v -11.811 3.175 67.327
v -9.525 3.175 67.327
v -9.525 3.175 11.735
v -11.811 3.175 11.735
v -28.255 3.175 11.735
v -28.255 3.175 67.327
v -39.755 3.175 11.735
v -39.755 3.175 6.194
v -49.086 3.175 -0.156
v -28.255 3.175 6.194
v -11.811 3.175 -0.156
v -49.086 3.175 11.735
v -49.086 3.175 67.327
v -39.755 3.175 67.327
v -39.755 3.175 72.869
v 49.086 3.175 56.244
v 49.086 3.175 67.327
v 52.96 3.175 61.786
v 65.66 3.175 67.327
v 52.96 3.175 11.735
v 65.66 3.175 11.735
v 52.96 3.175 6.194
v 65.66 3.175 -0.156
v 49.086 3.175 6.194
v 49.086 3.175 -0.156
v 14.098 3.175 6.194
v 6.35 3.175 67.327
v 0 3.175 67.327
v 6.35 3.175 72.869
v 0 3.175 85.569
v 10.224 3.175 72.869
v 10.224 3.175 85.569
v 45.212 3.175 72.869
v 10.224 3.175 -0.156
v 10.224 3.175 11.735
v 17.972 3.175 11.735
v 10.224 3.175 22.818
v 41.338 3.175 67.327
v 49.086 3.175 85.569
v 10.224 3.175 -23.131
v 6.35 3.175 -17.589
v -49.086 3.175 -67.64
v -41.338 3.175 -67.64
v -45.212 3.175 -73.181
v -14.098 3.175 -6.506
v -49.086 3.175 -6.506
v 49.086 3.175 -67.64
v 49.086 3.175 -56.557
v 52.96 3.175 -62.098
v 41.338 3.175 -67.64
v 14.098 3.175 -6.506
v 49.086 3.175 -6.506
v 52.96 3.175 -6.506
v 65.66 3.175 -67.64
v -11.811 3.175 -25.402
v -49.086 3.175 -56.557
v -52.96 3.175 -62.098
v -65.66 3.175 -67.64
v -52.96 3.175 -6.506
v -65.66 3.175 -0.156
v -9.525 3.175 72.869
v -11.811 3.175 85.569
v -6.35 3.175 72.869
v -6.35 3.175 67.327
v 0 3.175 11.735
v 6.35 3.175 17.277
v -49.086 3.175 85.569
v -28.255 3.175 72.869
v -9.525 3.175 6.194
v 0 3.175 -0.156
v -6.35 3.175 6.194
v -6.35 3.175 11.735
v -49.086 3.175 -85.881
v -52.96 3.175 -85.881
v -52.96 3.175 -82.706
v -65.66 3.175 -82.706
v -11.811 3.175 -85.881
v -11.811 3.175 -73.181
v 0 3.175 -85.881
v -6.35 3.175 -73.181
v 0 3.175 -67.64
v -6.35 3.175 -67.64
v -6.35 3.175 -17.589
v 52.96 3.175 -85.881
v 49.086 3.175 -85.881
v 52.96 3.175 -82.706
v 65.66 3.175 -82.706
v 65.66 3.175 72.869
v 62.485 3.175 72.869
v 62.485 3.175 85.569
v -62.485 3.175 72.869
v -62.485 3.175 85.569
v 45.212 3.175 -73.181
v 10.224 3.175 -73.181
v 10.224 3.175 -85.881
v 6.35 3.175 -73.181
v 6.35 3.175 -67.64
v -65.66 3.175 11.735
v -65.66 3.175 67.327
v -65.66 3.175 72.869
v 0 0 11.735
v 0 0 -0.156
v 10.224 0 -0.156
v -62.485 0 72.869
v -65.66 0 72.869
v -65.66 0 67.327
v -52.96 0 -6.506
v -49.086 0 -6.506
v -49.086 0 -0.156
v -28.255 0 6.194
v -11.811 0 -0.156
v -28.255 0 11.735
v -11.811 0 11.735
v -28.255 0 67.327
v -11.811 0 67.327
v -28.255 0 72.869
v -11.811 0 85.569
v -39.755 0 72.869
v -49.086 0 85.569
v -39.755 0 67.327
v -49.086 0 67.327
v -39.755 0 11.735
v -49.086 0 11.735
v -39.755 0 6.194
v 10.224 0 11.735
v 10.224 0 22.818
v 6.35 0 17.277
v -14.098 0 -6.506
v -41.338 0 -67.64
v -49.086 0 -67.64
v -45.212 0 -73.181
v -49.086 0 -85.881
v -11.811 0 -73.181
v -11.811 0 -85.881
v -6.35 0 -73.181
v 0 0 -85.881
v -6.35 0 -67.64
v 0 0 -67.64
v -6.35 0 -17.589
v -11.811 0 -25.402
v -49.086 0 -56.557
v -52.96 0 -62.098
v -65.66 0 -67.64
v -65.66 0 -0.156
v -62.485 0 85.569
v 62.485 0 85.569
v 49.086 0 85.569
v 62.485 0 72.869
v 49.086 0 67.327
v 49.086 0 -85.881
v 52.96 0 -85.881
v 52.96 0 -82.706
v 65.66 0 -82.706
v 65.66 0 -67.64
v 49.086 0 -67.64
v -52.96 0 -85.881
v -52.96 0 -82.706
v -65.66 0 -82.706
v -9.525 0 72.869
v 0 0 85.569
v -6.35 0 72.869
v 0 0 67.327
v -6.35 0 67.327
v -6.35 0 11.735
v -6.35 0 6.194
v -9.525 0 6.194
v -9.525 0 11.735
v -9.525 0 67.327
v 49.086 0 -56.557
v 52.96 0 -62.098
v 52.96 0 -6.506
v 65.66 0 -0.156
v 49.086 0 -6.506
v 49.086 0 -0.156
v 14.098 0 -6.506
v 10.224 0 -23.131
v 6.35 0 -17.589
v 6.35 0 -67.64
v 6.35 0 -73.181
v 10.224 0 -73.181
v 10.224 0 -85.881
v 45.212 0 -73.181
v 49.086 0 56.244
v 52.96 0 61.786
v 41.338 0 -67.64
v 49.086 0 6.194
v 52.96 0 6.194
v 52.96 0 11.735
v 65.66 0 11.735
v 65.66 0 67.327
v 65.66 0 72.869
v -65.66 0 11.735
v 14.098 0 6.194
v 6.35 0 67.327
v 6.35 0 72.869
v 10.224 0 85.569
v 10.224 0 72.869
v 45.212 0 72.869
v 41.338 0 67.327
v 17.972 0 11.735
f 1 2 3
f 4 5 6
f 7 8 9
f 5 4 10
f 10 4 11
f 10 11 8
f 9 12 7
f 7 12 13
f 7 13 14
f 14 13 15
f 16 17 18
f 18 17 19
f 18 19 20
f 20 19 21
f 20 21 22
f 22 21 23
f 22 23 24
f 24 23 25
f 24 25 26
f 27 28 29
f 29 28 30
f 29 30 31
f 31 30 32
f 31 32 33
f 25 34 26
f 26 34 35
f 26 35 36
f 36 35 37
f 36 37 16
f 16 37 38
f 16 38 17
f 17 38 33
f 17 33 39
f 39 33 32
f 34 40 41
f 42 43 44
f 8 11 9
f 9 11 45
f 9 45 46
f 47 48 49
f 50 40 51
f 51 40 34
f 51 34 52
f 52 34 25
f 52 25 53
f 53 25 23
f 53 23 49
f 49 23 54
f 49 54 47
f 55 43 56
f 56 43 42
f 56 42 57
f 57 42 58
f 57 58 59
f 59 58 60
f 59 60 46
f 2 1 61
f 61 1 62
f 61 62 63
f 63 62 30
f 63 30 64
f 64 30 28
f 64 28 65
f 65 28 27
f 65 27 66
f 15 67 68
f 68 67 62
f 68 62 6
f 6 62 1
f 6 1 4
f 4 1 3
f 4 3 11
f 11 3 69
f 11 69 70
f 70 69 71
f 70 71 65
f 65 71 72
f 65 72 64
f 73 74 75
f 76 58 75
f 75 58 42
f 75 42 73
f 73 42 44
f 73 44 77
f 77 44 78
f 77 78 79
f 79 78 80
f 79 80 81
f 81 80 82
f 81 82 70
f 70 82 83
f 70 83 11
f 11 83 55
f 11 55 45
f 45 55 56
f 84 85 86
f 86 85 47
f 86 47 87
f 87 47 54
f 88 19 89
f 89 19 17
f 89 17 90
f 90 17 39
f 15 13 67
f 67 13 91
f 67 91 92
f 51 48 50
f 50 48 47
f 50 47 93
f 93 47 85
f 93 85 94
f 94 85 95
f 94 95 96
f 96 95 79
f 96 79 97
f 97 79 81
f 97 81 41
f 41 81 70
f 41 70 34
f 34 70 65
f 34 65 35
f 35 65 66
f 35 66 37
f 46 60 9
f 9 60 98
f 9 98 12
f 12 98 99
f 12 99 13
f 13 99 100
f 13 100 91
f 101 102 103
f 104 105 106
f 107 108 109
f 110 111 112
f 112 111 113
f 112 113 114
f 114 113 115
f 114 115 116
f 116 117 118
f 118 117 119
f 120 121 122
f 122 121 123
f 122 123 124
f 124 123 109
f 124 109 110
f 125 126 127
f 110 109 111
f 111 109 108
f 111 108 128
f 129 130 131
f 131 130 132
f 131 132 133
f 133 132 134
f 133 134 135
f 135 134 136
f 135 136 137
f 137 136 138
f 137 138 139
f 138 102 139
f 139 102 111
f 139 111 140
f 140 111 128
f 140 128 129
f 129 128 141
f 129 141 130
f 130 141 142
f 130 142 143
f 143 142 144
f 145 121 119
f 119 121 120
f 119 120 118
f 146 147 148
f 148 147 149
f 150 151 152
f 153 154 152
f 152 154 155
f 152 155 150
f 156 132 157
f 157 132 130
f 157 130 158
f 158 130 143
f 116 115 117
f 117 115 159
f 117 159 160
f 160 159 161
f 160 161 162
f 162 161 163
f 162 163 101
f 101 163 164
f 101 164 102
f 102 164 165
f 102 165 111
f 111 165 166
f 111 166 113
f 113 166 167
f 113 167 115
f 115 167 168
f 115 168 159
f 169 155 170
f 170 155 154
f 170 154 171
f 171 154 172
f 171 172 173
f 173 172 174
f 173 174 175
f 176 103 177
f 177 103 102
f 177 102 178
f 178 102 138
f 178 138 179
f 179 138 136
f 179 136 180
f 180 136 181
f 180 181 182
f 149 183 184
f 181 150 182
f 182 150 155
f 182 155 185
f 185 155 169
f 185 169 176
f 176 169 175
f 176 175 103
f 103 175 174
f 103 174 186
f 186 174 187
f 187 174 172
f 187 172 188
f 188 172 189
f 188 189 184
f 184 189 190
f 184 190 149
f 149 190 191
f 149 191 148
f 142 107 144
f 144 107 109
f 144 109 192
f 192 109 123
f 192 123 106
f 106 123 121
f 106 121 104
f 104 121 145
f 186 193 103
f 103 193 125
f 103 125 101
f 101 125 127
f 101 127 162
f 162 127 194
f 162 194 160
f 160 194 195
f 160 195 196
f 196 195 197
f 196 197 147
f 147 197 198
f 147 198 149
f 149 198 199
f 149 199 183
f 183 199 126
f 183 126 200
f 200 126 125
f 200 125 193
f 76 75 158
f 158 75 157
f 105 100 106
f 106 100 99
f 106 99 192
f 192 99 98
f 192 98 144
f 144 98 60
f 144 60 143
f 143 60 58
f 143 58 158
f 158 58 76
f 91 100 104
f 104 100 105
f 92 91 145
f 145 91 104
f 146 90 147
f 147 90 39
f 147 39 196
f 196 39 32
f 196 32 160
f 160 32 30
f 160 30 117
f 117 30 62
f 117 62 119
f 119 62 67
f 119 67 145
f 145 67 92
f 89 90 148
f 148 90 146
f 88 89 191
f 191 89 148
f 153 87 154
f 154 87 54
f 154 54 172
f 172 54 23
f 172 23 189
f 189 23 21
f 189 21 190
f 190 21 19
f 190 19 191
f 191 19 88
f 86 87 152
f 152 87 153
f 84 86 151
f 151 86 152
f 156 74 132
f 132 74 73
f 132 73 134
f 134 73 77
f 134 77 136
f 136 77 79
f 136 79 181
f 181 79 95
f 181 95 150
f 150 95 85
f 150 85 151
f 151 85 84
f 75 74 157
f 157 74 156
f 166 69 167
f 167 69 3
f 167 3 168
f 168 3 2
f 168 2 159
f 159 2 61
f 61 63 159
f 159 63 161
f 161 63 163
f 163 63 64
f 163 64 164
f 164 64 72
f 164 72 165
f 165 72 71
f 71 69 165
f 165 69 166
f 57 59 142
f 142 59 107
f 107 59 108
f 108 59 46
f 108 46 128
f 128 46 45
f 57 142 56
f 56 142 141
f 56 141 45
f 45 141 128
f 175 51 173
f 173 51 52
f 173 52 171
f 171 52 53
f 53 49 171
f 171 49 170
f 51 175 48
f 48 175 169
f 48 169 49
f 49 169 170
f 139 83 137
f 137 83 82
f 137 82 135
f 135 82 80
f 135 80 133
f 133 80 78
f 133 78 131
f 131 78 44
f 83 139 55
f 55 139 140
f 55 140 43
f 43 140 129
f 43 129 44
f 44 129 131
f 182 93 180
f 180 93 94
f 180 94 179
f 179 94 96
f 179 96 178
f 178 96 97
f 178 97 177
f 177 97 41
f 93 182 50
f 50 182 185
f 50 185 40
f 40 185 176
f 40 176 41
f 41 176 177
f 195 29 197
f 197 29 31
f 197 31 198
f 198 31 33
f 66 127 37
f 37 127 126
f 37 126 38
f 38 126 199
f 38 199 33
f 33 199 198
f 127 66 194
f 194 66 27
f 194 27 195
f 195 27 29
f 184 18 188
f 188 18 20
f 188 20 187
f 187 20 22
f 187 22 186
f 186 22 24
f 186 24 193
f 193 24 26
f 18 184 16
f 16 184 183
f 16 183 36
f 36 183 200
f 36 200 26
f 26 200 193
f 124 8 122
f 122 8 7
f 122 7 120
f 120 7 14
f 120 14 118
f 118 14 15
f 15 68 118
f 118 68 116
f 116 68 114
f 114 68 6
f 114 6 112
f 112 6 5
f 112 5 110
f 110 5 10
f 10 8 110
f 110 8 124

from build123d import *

# Parameters (mm, degrees)
SKETCH1_W           = 11.5
SKETCH1_H           = 66.675
SKETCH1_W_2         = 3.175
BOSS_EXTRUDE1_DEPTH = 3.175


with BuildPart() as part:
    # Sketch1 → Boss-Extrude1 (new body)
    with BuildSketch(Plane(origin=(0, 0, 0), x_dir=(1, 0, 0), z_dir=(0, 1, 0))):
        Polygon((-52.96, 85.881432482), (52.96, 85.881432482), (52.96, 82.706432482), (65.66, 82.706432482), (65.66, -72.868567518), (62.485, -72.868567518), (62.485, -85.568567518), (-62.485, -85.568567518), (-62.485, -72.868567518), (-65.66, -72.868567518), (-65.66, 82.706432482), (-52.96, 82.706432482), align=None)
        Polygon((-52.96, 6.506432482), (-14.097750884, 6.506432482), (-52.96, 62.098375408), align=None, mode=Mode.SUBTRACT)
        Polygon((-45.212249116, 73.181432482), (-6.35, 73.181432482), (-6.35, 17.589489555), align=None, mode=Mode.SUBTRACT)
        with Locations((-34.0045, -39.531067518)):
            Rectangle(SKETCH1_W, SKETCH1_H, mode=Mode.SUBTRACT)
        Polygon((52.96, 62.098375408), (52.96, 6.506432482), (14.097750884, 6.506432482), align=None, mode=Mode.SUBTRACT)
        Polygon((6.35, 73.181432482), (6.35, 17.589489555), (45.212249116, 73.181432482), align=None, mode=Mode.SUBTRACT)
        Polygon((14.097750884, -6.193567518), (52.96, -6.193567518), (52.96, -61.785510445), align=None, mode=Mode.SUBTRACT)
        Polygon((6.35, -17.276624592), (45.212249116, -72.868567518), (6.35, -72.868567518), align=None, mode=Mode.SUBTRACT)
        with Locations((-7.9375, -39.531067518)):
            Rectangle(SKETCH1_W_2, SKETCH1_H, mode=Mode.SUBTRACT)
    extrude(amount=BOSS_EXTRUDE1_DEPTH)


solid = part.part
